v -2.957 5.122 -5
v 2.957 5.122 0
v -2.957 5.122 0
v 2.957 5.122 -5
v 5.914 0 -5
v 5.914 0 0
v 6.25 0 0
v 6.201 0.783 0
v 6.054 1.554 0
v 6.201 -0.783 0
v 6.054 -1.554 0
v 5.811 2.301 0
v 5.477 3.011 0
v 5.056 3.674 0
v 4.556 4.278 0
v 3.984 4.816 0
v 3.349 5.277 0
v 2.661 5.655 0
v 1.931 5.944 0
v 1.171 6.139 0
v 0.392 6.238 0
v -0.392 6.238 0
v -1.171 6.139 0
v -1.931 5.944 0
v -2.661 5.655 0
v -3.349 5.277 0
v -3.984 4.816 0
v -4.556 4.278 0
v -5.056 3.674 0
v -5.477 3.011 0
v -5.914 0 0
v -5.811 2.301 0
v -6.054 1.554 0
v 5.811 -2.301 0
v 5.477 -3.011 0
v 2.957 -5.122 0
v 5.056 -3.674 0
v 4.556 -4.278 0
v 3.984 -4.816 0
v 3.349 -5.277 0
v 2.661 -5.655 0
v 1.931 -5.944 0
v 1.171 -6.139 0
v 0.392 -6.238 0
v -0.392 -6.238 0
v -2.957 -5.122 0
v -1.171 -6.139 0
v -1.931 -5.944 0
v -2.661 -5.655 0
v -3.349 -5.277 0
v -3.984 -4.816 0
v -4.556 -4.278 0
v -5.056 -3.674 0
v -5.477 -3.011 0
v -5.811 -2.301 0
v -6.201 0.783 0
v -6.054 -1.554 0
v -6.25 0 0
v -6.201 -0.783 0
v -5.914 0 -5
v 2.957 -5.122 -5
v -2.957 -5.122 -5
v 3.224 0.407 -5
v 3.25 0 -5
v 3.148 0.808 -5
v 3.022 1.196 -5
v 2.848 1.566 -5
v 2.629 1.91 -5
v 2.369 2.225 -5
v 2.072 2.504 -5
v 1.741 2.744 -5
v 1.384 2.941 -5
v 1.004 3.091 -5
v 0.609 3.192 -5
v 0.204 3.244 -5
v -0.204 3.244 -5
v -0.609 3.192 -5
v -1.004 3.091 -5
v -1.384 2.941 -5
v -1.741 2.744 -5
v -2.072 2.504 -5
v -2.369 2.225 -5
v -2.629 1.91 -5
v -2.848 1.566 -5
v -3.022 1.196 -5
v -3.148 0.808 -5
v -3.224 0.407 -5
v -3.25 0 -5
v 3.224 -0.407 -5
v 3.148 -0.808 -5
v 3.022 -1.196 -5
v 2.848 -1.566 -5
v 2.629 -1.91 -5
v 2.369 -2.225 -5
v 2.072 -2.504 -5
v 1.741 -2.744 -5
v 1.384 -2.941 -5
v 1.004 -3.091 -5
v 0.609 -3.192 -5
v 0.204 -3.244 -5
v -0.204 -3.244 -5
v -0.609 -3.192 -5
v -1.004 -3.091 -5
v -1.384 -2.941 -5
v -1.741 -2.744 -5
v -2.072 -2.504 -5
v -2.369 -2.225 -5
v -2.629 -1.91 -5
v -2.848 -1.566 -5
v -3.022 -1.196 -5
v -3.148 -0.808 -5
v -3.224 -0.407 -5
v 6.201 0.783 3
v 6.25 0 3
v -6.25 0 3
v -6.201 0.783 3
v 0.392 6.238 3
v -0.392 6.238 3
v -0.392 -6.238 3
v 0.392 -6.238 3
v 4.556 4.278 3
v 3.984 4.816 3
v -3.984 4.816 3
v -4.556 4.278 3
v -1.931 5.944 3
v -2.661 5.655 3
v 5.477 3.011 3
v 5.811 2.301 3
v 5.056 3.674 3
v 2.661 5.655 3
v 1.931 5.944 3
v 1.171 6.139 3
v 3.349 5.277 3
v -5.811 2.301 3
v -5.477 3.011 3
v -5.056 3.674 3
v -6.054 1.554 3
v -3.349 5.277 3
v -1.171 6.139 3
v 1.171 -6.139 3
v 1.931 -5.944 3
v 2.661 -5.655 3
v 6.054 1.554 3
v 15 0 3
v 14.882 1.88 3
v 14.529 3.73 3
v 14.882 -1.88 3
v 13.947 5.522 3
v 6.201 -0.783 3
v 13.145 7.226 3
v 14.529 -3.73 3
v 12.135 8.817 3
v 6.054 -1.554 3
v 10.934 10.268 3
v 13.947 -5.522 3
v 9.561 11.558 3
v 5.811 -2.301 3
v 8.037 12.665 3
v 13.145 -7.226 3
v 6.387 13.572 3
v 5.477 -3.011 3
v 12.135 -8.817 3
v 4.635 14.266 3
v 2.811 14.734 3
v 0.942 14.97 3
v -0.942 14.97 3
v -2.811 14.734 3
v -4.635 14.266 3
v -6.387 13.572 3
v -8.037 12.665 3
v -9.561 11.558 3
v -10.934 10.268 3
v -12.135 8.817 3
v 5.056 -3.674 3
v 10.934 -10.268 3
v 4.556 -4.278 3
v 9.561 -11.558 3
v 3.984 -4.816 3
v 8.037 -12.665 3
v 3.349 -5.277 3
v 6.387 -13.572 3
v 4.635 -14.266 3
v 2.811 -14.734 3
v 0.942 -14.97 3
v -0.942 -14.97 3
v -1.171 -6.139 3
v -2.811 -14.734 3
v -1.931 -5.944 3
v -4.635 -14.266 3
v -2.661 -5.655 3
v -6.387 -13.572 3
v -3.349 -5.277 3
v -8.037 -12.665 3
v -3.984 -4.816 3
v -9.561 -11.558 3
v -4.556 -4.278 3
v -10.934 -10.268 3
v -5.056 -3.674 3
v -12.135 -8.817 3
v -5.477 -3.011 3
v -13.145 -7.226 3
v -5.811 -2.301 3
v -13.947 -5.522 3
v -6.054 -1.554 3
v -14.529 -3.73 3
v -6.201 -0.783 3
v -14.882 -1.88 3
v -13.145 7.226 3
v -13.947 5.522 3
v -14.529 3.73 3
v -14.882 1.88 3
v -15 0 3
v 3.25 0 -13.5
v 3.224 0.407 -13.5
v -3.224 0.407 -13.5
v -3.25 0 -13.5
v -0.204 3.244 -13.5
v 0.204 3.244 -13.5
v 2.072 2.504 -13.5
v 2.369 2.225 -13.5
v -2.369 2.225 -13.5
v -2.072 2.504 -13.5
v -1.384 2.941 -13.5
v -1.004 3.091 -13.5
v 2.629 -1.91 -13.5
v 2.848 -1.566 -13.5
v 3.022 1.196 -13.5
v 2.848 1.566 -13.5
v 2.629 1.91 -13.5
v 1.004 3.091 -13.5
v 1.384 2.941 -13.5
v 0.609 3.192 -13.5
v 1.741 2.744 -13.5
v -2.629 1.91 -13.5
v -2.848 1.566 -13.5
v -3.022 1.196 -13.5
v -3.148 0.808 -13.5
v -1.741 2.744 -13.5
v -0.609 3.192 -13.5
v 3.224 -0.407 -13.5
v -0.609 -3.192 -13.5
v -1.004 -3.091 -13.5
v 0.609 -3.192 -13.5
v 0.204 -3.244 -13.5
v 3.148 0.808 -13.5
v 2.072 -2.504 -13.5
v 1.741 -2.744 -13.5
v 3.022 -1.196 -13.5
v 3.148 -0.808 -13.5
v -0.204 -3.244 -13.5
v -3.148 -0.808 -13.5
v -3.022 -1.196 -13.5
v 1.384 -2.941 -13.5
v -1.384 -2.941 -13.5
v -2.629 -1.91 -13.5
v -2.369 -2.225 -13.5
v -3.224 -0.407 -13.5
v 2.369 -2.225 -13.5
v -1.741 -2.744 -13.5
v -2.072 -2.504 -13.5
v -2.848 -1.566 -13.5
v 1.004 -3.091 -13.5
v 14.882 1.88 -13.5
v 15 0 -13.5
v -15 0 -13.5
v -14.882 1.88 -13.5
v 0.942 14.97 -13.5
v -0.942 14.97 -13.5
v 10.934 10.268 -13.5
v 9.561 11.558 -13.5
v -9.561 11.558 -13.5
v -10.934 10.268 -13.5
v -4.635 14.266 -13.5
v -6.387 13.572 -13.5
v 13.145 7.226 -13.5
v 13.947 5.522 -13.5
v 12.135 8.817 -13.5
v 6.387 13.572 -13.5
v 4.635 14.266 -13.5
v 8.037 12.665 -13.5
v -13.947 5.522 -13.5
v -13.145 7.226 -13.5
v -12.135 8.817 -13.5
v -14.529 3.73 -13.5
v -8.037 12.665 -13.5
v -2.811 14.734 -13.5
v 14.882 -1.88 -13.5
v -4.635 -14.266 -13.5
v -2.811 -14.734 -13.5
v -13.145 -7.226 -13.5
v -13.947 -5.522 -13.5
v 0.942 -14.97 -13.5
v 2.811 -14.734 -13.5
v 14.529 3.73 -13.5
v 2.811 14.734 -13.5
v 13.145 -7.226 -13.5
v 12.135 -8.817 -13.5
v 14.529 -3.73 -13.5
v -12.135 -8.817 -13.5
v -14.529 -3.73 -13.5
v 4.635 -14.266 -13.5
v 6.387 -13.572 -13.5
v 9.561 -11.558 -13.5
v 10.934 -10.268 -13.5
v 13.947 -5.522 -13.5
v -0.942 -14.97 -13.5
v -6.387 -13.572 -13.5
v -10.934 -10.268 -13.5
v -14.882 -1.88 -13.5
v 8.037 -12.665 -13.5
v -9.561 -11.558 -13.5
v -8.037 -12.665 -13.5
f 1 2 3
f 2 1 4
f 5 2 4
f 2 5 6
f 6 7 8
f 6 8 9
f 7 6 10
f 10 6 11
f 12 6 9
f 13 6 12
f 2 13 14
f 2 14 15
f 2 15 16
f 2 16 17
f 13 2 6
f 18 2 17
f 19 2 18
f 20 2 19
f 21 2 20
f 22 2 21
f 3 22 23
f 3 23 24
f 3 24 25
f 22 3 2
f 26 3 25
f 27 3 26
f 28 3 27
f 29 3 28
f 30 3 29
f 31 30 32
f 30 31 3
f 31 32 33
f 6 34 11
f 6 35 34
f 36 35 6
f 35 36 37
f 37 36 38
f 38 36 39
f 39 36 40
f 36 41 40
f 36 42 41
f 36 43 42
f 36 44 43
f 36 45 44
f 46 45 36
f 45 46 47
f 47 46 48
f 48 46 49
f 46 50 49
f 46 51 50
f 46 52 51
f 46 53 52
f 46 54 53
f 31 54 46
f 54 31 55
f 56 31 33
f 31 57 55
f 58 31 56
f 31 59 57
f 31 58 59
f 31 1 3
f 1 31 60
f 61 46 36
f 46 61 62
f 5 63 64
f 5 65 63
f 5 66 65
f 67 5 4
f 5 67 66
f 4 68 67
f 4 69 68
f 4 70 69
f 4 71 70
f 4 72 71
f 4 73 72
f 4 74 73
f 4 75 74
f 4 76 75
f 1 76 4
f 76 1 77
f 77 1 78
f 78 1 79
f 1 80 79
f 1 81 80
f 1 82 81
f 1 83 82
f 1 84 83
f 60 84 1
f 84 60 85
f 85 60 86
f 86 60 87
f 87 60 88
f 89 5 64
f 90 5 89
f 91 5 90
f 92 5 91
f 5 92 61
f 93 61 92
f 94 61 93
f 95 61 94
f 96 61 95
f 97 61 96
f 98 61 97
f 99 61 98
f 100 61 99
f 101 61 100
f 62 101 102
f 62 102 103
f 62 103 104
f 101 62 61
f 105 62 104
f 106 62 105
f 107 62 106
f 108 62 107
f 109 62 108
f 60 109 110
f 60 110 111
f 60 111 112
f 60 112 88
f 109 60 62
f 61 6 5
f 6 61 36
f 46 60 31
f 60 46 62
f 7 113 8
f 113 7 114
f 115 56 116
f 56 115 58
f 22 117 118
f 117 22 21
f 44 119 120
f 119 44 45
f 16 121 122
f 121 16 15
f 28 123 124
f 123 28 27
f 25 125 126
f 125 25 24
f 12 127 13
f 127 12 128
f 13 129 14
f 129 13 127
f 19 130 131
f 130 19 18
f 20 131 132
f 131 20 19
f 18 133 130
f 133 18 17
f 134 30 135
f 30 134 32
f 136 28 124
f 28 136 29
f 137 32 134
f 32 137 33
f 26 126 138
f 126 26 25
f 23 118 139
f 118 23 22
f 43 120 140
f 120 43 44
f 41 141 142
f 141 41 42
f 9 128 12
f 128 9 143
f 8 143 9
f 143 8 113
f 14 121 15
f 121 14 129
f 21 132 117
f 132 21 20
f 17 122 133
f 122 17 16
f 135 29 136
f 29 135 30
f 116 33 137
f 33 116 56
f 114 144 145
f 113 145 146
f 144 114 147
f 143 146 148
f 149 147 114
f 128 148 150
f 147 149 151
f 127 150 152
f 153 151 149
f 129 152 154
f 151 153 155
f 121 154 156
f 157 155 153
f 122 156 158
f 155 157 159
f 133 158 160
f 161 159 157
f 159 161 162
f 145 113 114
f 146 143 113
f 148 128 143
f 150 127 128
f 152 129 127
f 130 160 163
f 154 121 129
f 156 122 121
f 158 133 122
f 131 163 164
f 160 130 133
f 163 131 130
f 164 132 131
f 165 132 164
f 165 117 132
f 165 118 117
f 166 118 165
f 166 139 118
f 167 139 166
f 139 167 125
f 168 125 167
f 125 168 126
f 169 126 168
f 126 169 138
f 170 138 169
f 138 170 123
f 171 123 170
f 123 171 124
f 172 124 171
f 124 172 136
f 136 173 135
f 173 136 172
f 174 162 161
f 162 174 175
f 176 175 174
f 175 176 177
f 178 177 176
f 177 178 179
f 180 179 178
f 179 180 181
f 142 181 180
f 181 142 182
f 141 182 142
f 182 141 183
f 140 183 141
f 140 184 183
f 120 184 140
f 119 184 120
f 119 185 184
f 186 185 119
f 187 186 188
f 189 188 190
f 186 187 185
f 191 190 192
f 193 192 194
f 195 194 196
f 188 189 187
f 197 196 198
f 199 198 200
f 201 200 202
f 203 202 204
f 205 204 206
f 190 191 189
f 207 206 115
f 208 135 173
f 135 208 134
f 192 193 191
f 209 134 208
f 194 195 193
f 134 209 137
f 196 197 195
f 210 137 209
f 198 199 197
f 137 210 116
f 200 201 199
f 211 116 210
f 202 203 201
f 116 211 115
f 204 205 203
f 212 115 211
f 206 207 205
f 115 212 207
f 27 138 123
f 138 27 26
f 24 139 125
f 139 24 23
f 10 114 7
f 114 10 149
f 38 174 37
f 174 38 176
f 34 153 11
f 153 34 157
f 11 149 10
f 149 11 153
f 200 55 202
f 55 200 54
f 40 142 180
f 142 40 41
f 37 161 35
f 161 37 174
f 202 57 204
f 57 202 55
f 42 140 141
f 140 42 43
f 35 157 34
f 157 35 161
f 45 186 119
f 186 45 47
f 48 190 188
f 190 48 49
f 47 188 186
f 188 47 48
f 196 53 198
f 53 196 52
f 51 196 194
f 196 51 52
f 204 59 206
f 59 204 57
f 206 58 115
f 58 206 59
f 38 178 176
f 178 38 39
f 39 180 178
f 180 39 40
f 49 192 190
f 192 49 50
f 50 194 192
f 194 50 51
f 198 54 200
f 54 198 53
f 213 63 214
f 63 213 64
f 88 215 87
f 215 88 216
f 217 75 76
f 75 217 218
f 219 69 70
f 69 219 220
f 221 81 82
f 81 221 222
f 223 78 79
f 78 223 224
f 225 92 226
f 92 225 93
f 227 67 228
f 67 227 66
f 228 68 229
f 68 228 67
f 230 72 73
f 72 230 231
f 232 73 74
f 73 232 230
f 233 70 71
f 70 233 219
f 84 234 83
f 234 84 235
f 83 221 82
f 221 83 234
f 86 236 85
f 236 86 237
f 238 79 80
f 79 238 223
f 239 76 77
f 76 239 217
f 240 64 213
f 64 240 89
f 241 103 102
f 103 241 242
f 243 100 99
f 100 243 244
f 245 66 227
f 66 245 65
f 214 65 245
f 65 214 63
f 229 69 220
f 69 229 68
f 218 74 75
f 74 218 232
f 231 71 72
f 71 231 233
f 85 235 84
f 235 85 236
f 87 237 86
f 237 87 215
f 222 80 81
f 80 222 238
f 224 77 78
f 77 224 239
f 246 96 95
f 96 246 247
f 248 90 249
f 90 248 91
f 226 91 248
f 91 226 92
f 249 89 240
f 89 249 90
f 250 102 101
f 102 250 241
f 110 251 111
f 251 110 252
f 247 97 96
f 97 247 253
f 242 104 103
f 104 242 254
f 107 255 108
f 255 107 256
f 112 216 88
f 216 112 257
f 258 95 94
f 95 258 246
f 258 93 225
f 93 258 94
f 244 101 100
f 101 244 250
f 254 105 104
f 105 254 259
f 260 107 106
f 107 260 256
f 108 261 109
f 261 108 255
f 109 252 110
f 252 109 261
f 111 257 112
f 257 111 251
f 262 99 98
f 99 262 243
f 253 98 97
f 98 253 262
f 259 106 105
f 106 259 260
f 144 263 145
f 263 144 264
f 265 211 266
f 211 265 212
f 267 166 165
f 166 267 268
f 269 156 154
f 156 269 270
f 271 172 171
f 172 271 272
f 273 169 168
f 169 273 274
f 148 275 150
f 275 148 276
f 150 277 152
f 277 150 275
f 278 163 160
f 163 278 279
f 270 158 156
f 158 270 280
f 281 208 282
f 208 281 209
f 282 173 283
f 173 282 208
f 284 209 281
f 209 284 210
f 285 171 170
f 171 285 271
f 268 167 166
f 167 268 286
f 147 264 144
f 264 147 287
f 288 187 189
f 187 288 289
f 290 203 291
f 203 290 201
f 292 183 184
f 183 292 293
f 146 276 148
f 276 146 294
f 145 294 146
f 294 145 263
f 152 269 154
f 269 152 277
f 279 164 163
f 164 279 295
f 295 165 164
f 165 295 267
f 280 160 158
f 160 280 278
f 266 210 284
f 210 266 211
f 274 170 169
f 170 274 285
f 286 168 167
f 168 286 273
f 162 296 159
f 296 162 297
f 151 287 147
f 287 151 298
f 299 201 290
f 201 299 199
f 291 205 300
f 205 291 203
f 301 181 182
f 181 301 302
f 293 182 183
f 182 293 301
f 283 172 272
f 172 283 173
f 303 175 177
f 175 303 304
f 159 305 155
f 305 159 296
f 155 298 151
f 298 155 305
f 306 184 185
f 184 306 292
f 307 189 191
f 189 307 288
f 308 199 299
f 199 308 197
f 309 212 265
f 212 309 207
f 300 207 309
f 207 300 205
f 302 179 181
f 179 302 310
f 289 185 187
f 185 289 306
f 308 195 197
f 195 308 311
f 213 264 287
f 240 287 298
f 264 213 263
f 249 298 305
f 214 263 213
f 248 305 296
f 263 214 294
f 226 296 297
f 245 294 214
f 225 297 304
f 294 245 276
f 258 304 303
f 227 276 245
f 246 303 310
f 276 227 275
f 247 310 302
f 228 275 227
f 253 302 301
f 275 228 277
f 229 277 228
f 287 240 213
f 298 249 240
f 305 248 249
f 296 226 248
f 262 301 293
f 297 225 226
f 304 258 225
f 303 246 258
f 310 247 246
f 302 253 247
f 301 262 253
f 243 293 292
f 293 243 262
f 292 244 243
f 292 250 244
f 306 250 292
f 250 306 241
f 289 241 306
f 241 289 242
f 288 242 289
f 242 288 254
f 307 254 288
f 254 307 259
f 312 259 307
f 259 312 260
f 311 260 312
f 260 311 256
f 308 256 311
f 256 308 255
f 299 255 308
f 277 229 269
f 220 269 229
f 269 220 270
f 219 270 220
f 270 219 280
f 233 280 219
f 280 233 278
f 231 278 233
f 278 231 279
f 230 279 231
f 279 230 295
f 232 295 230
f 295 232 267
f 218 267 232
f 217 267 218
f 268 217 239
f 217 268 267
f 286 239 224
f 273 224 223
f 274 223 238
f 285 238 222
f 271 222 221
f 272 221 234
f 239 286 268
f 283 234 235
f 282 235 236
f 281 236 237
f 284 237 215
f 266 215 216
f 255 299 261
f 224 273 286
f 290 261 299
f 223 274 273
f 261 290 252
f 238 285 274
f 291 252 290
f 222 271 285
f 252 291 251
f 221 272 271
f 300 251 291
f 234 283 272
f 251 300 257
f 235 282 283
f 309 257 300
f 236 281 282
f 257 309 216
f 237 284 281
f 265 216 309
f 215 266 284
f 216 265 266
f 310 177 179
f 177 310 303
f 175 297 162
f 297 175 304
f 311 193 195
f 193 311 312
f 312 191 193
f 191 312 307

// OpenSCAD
$fn = 50;


difference() {
	union() {
		translate(v = [0, 0, -13.5000000000]) {
			cylinder(h = 16.5000000000, r = 15.0000000000);
		}
	}
	union() {
		translate(v = [0, 0, 0]) {
			rotate(a = [0, 0, 0]) {
				difference() {
					union() {
						translate(v = [0, 0, -5]) {
							linear_extrude(height = 5) {
								polygon(points = [[5.9142500000, 0.0000000000], [2.9571250000, 5.1218907443], [-2.9571250000, 5.1218907443], [-5.9142500000, 0.0000000000], [-2.9571250000, -5.1218907443], [2.9571250000, -5.1218907443]]);
							}
						}
					}
					union();
				}
			}
		}
		#cylinder(h = 3, r = 6.2500000000);
		#translate(v = [0, 0, -100.0000000000]) {
			cylinder(h = 200, r = 3.2500000000);
		}
	}
}
